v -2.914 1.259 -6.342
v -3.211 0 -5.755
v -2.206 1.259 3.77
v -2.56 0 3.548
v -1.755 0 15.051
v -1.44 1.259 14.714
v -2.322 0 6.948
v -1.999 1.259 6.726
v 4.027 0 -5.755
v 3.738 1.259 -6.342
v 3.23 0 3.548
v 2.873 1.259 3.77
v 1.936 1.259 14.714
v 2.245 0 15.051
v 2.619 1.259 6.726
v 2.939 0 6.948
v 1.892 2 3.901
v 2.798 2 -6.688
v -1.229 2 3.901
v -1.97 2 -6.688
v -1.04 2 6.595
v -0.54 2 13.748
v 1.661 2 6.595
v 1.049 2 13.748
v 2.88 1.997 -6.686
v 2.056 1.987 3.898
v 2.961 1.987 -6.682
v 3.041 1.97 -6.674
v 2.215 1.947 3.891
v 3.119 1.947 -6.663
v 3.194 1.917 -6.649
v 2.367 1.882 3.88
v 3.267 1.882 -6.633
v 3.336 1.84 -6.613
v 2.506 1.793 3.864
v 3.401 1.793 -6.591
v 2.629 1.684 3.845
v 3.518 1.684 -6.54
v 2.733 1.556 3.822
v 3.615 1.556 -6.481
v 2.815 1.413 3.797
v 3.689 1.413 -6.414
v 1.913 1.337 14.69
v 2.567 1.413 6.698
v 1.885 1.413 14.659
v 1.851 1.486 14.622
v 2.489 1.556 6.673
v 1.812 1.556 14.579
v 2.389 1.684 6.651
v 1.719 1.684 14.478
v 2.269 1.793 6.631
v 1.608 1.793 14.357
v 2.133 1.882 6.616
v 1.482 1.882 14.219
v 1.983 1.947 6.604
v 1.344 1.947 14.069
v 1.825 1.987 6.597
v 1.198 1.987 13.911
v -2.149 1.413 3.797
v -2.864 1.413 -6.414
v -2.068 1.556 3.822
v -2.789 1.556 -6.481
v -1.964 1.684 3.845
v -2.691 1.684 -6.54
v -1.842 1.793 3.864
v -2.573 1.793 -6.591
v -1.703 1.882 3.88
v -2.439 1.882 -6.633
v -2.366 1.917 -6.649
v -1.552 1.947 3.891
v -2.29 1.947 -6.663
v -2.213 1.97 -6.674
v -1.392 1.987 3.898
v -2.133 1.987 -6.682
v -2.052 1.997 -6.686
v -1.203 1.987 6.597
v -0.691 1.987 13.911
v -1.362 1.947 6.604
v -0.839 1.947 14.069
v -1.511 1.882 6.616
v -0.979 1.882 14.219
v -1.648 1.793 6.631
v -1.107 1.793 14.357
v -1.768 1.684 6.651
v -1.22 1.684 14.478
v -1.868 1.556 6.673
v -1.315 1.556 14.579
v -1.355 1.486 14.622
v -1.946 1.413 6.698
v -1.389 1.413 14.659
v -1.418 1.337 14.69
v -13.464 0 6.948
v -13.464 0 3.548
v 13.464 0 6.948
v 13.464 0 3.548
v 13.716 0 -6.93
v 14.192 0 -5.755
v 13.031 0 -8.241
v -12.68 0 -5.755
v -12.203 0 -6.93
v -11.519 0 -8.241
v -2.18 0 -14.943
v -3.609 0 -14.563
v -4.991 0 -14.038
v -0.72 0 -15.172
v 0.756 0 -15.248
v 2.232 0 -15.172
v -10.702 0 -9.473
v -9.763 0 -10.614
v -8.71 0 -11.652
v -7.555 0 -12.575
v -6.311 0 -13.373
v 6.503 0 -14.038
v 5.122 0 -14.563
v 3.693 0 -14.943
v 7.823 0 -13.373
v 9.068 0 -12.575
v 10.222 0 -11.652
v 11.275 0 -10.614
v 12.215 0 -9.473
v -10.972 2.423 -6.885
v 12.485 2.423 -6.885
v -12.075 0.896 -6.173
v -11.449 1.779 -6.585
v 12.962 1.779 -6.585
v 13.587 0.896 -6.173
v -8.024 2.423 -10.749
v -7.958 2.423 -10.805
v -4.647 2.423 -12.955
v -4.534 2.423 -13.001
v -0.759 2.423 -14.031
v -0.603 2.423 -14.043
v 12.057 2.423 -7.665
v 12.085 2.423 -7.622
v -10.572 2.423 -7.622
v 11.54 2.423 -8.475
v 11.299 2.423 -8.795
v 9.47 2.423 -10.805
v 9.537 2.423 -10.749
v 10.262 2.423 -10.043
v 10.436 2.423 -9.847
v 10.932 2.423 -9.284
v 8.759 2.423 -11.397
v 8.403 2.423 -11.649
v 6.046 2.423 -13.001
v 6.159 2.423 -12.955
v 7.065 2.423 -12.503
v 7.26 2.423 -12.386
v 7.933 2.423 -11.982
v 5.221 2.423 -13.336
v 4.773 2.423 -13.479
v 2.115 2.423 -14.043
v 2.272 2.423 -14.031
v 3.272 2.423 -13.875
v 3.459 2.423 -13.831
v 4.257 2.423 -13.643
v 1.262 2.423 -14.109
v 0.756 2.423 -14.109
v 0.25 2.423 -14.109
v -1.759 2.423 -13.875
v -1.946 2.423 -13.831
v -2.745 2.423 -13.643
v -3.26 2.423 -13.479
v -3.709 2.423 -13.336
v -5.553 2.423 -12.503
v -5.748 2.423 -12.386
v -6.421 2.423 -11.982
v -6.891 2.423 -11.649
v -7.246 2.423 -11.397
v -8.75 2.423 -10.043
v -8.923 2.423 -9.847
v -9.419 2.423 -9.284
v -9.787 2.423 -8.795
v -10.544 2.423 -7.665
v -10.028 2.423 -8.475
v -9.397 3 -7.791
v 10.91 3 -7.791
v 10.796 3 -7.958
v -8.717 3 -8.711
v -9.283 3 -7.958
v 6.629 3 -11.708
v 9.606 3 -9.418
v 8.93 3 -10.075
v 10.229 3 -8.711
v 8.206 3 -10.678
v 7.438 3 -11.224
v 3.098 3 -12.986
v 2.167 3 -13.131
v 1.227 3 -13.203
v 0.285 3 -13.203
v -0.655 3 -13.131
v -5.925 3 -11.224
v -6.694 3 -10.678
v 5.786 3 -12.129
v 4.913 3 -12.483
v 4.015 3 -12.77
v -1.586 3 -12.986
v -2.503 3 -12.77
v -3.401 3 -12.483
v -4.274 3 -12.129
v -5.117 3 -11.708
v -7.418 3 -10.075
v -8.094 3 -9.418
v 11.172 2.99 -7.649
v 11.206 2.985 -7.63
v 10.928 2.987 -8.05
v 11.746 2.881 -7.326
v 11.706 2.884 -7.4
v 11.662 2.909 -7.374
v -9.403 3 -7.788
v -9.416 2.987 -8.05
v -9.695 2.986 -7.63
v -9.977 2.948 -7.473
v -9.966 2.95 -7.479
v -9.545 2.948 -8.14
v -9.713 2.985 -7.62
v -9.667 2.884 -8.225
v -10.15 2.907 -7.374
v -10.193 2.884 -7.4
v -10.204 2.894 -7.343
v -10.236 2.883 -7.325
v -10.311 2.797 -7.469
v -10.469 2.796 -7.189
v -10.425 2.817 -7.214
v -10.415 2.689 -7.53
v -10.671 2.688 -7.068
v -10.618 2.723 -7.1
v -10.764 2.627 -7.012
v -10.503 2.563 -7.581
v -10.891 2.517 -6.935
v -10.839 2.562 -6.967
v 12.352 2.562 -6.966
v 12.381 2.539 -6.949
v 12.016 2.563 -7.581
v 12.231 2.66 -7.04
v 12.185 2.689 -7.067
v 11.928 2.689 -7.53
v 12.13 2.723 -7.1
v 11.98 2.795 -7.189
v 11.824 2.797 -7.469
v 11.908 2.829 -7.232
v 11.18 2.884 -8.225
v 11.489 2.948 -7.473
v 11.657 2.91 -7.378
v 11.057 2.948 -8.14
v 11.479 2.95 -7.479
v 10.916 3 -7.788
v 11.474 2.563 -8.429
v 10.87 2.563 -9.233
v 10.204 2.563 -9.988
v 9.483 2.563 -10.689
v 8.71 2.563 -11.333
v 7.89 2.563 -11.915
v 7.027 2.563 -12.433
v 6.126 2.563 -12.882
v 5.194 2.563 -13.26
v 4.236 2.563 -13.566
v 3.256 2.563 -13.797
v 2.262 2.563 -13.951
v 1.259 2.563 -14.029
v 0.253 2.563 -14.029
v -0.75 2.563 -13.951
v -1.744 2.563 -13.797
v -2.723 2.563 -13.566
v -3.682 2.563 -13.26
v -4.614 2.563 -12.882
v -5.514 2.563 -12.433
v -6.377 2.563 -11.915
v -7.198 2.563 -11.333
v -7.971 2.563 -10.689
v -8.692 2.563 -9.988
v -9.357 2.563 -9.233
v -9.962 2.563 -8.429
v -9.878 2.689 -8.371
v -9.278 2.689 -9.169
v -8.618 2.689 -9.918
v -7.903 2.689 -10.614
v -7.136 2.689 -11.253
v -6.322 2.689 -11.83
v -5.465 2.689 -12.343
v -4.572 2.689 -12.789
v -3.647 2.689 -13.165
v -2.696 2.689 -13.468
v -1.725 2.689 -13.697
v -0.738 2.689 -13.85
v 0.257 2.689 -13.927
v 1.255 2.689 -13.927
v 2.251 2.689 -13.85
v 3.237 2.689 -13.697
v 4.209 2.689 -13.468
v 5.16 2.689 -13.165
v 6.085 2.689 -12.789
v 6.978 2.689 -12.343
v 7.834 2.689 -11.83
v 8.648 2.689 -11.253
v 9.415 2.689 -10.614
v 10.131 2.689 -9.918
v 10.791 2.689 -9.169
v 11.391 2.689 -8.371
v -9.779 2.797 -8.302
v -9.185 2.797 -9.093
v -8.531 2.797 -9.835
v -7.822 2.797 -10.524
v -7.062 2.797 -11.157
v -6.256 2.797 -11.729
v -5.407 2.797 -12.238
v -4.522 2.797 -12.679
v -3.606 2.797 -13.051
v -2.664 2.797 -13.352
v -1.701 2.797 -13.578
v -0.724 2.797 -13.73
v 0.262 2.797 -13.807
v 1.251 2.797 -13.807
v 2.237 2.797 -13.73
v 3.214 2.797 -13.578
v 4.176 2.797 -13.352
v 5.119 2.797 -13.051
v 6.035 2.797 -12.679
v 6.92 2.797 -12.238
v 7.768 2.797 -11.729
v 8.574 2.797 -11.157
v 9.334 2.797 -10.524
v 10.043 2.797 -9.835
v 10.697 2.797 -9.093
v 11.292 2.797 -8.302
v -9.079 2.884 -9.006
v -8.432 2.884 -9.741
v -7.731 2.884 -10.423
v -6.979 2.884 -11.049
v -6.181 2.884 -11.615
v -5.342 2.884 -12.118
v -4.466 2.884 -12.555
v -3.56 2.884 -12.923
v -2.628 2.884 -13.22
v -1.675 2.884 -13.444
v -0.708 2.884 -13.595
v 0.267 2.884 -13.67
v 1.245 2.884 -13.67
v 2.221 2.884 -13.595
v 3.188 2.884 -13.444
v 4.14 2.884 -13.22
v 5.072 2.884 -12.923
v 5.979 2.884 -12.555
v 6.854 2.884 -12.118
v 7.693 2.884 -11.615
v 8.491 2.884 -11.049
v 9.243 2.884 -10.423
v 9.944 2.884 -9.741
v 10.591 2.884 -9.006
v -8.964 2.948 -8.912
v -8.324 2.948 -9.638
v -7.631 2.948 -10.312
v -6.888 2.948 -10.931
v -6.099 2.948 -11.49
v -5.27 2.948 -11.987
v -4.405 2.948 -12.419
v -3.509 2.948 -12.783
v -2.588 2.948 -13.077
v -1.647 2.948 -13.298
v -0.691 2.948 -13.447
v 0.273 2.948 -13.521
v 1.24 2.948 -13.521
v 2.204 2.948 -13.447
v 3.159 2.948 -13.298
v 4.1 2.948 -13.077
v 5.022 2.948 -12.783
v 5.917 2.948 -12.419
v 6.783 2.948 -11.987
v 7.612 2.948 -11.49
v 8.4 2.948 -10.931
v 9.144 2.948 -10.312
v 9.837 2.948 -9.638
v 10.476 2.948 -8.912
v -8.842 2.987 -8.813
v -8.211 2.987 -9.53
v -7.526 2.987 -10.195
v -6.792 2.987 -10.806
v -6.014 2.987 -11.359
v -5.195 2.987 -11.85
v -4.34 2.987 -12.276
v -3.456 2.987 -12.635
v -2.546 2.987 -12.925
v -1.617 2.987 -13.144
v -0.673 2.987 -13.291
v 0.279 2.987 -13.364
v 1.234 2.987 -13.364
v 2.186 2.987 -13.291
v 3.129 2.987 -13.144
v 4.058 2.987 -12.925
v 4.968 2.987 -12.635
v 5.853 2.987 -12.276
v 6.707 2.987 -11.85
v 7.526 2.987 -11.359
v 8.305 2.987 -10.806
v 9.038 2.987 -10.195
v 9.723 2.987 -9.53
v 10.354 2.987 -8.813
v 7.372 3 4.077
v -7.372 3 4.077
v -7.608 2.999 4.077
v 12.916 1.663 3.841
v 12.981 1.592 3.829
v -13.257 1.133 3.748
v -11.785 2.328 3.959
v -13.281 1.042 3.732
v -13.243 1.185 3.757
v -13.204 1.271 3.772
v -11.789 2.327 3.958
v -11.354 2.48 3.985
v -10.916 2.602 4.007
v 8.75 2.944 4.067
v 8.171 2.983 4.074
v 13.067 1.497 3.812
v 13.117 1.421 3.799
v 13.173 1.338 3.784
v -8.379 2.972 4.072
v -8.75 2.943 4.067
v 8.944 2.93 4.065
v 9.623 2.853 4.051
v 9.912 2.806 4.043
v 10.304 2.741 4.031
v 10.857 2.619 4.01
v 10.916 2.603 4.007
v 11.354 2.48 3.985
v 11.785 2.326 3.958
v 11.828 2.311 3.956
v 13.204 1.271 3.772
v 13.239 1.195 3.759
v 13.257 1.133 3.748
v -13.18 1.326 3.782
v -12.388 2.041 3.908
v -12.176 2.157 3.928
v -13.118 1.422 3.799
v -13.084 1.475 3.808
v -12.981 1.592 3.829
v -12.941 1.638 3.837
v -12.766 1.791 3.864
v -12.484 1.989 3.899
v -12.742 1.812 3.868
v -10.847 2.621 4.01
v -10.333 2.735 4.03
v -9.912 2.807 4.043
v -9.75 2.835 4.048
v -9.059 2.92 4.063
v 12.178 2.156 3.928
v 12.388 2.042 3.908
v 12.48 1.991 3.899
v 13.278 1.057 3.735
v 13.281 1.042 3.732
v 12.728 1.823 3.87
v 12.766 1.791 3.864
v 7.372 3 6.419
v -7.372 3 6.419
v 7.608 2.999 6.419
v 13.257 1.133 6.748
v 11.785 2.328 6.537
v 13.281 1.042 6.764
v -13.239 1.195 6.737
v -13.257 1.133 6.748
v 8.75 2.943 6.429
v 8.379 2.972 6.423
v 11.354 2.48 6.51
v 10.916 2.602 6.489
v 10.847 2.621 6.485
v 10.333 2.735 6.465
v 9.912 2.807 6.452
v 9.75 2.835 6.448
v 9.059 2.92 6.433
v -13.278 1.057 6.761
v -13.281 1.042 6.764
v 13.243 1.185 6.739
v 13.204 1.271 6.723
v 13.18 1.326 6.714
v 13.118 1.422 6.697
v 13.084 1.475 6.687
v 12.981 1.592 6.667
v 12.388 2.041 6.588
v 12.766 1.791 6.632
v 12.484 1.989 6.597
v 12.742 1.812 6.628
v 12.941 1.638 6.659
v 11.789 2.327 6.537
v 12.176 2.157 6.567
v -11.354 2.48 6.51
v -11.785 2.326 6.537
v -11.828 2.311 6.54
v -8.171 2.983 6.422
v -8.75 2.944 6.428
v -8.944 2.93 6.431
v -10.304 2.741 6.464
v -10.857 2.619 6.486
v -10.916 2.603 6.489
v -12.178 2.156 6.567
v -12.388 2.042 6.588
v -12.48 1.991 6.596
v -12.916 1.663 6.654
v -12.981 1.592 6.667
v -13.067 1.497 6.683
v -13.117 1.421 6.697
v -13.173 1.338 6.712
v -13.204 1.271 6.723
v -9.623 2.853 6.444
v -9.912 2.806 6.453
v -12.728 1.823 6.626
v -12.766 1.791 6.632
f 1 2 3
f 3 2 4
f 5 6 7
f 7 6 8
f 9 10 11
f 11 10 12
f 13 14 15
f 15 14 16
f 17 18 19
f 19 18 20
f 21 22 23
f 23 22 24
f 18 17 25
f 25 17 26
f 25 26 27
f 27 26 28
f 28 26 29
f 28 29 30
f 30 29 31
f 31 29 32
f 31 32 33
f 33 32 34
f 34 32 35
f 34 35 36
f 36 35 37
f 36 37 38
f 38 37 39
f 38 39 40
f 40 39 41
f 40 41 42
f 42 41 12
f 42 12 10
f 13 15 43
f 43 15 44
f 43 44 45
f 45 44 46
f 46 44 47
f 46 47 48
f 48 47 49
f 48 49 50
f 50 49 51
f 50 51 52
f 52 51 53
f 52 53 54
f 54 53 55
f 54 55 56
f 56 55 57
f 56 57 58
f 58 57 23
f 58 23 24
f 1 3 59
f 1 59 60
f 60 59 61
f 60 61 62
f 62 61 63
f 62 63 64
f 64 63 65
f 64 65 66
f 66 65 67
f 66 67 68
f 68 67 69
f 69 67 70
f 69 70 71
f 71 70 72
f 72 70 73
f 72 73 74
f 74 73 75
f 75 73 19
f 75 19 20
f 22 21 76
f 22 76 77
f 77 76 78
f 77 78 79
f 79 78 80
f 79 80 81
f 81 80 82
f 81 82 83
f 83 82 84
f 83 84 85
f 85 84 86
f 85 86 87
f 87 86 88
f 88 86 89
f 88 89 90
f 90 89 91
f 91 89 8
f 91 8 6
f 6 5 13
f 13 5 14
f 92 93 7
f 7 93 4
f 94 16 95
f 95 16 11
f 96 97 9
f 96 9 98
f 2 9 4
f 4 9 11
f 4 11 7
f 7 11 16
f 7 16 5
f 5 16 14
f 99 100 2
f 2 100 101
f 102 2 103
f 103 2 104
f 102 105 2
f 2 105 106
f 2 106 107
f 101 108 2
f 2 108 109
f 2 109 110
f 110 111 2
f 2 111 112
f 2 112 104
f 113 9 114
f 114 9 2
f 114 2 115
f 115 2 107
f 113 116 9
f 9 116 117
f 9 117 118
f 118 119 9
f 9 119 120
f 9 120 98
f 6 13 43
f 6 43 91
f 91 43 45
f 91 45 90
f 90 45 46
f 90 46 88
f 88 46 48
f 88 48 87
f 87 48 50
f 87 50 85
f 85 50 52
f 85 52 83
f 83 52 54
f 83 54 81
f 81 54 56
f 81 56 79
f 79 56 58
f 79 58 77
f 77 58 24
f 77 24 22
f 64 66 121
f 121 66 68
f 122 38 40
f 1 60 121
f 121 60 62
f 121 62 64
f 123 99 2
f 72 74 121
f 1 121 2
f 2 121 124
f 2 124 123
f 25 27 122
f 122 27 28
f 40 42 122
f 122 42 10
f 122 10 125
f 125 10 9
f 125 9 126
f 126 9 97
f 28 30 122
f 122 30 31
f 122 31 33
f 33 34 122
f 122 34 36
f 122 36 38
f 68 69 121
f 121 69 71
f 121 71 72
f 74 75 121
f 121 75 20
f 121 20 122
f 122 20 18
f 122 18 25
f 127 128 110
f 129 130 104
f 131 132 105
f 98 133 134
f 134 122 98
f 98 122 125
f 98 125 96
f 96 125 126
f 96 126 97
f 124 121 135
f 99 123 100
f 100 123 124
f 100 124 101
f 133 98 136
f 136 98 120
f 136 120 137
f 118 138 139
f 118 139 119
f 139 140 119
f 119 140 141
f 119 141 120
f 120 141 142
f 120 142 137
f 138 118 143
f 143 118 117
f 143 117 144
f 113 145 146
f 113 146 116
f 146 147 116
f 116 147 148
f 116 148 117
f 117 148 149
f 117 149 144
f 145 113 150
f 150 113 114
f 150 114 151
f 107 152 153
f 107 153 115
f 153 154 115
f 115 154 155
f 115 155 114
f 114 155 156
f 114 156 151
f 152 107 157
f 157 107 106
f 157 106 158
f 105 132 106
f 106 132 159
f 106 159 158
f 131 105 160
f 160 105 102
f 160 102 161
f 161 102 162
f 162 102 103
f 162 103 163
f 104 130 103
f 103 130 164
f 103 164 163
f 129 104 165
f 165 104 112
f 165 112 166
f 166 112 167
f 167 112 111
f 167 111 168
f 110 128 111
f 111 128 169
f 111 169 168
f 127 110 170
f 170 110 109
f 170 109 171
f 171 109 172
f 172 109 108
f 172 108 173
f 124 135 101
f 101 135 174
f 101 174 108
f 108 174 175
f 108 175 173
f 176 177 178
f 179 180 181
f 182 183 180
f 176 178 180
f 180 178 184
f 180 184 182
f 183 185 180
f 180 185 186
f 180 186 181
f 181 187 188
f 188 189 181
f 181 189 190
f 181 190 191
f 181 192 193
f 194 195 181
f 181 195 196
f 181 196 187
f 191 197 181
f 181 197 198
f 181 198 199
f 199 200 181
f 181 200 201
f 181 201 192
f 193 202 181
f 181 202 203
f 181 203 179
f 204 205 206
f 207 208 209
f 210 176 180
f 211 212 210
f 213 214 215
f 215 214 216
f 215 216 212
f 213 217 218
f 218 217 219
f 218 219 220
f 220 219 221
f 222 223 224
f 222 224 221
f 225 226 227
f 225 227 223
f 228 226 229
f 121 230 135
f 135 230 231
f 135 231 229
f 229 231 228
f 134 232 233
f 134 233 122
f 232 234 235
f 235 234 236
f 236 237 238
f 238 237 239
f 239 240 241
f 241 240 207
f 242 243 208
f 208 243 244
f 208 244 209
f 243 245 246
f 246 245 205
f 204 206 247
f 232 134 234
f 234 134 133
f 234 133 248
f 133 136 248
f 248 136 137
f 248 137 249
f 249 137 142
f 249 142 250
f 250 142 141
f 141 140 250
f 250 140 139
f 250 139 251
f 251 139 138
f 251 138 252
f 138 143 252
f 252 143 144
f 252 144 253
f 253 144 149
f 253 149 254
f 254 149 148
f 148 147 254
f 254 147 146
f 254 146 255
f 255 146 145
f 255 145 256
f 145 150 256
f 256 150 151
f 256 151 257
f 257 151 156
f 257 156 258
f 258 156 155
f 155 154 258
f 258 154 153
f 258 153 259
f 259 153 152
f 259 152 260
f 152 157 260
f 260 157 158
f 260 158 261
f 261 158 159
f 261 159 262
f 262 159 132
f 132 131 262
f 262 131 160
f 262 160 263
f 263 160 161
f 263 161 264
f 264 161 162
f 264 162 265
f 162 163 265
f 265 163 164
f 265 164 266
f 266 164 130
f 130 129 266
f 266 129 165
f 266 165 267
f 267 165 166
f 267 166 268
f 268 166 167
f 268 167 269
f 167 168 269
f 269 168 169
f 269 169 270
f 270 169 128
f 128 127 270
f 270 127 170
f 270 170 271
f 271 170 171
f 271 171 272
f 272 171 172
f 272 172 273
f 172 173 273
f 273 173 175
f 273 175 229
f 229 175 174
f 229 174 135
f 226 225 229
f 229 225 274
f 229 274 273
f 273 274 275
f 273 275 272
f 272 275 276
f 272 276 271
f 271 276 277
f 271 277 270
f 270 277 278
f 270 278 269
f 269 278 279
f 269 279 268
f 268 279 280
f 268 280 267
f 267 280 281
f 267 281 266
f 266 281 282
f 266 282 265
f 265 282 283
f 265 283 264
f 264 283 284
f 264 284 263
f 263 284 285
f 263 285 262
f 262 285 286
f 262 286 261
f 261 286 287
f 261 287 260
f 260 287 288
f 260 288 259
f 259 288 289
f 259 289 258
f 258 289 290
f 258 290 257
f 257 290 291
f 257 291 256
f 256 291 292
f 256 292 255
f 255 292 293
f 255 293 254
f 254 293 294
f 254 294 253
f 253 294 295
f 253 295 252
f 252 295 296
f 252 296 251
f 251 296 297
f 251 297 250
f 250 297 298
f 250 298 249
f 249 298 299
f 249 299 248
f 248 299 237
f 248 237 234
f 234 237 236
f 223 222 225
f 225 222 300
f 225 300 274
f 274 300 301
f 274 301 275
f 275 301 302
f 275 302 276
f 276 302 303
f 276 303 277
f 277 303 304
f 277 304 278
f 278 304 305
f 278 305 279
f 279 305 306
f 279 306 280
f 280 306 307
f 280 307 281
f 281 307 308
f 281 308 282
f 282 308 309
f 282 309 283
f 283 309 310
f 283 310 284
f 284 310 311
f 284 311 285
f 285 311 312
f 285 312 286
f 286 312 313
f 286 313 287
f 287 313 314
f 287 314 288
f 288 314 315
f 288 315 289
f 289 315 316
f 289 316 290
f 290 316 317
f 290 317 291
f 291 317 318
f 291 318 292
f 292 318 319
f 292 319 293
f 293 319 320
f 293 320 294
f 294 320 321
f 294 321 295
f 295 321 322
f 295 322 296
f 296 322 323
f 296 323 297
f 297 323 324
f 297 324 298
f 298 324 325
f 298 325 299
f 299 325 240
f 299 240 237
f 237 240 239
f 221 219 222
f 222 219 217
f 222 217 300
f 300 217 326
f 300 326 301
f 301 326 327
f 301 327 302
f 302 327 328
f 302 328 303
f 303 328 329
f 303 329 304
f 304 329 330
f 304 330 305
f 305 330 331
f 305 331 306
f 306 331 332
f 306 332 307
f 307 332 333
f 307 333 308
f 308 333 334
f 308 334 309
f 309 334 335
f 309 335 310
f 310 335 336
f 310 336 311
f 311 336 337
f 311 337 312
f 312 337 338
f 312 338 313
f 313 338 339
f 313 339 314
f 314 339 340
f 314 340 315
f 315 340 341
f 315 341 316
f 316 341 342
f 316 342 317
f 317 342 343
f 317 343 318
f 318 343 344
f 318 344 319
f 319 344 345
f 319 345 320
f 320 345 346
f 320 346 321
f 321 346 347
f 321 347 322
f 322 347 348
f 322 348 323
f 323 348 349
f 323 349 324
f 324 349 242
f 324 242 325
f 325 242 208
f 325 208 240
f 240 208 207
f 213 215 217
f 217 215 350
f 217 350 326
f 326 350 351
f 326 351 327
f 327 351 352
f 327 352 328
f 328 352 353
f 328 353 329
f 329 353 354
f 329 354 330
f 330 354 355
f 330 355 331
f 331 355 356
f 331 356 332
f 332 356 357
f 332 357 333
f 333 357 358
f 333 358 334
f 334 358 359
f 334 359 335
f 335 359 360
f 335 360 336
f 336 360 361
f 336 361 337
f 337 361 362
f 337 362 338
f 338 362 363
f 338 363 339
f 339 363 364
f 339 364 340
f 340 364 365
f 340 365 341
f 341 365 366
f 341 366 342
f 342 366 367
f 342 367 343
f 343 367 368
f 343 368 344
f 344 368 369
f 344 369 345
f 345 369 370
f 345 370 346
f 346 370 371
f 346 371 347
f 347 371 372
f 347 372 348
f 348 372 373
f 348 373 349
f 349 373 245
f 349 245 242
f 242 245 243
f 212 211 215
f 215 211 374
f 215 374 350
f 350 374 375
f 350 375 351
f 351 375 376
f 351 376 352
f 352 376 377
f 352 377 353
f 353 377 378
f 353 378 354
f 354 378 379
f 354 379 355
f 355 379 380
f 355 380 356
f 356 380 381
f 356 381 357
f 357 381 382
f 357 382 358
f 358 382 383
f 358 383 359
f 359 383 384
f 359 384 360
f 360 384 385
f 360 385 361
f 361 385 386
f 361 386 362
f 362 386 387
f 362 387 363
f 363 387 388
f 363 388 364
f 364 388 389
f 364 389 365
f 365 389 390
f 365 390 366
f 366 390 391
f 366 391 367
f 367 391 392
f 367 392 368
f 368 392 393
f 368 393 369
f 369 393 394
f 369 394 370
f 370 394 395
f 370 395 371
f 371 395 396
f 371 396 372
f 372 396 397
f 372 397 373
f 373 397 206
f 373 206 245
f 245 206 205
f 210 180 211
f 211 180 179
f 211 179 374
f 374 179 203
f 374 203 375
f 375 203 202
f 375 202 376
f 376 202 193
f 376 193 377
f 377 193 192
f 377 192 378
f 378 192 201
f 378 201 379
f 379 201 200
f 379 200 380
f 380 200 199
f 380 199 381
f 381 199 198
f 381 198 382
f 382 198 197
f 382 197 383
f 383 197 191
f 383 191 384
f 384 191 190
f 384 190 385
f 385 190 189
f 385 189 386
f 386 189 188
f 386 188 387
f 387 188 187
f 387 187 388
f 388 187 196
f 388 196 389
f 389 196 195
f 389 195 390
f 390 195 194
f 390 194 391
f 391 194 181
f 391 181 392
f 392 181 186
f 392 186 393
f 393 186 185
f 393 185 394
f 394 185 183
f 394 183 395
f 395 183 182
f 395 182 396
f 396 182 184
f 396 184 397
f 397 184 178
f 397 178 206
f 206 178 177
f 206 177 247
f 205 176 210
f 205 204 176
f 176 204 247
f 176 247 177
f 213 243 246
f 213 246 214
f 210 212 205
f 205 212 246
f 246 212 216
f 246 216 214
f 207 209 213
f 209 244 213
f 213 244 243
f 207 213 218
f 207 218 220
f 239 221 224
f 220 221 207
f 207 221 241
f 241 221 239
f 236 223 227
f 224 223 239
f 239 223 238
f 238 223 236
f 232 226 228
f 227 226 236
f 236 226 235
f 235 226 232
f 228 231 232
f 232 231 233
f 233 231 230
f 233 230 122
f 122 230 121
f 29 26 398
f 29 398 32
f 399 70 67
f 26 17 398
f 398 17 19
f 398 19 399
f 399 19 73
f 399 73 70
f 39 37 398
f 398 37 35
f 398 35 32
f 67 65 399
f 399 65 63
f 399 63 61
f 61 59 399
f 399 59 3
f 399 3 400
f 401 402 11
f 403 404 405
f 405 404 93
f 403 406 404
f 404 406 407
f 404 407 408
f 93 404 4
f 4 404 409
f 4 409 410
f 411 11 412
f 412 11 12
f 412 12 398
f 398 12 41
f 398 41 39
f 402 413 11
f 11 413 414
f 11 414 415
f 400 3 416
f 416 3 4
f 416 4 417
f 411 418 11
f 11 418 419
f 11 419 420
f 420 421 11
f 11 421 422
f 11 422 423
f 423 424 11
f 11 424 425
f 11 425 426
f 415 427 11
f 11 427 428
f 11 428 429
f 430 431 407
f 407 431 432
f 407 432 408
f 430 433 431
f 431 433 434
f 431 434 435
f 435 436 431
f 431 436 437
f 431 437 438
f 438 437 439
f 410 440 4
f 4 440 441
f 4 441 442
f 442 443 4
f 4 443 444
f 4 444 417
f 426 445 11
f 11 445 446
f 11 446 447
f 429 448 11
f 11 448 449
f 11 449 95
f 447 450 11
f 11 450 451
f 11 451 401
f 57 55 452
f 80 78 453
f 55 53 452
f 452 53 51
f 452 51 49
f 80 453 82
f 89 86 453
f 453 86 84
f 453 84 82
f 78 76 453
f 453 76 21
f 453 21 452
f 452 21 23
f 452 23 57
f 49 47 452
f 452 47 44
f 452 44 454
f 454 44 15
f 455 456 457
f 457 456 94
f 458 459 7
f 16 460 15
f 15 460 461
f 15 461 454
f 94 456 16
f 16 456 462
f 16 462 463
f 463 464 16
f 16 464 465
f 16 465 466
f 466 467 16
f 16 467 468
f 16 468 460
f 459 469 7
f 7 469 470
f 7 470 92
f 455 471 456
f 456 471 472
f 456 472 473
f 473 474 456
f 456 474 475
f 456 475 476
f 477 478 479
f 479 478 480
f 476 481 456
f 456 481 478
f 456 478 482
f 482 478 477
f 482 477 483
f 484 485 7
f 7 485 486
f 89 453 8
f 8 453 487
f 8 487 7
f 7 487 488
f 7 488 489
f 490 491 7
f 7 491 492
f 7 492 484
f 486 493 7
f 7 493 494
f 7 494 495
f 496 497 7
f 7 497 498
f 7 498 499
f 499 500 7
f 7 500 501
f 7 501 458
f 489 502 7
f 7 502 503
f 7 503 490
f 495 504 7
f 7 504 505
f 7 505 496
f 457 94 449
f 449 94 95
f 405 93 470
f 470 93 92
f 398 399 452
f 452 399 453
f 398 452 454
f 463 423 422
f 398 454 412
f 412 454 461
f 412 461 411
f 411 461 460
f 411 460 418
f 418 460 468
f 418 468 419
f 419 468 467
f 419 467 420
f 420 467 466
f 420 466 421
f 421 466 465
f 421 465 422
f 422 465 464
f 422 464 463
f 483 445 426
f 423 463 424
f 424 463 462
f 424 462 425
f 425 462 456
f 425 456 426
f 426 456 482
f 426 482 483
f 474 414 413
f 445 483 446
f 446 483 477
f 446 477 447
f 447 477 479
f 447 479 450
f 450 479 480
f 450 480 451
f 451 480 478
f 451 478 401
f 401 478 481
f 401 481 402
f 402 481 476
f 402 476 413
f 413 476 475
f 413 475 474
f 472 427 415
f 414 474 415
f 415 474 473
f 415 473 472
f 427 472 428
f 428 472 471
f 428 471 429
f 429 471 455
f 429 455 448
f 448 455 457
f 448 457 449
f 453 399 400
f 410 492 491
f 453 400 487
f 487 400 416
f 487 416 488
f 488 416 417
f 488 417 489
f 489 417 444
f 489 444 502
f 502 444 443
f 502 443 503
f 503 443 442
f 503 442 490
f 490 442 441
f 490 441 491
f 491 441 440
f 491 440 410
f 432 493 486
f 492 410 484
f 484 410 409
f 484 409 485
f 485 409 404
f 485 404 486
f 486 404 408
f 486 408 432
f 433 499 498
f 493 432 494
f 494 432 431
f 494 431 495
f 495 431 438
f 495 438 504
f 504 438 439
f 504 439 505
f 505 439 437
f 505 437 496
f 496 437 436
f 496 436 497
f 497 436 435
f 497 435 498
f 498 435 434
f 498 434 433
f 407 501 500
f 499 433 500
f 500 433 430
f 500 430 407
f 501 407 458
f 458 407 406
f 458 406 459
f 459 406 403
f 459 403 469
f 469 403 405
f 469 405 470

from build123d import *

# Parameters (mm, degrees)
BOSS_EXTRUDE1_DEPTH = 2
BOSS_EXTRUDE1_TAPER = 15
FILLET1_R           = 1
BOSS_EXTRUDE2_DEPTH = 3
BOSS_EXTRUDE2_DRAFT = 25
FILLET2_R           = 1
SKETCH4_W           = 26.928933456
SKETCH4_H           = 3.399397771
BOSS_EXTRUDE3_DEPTH = 3
BOSS_EXTRUDE3_TAPER = 10
FILLET3_START       = 3.548118457
FILLET3_DEPTH       = 3.399397771


with BuildPart() as part:
    # Sketch2 → Boss-Extrude1 (new body)
    with BuildSketch(Plane(origin=(0, 0, 0), x_dir=(1, 0, 0), z_dir=(0, 1, 0))):
        Polygon((2.245194627, -15.051216937), (4.446052988, 10.654239994), (-3.553947012, 10.654239994), (-1.754805373, -15.051216937), align=None)
    extrude(amount=BOSS_EXTRUDE1_DEPTH, taper=BOSS_EXTRUDE1_TAPER)

    # Fillet1
    fillet1_edges = [part.edges().sort_by_distance(p)[0] for p in [
        (2.807764808, 2, 2.198488472),
        (0.441540754, 2, -10.118341609),
        (-2.117166811, 2, 2.198488472),
        (0.249057243, 2, 14.515318552),
    ]]
    fillet(fillet1_edges, radius=FILLET1_R)


with BuildPart() as boss_extrude2_tool:
    # Sketch3 → Boss-Extrude2 (with draft: the straight prism first)
    with BuildSketch(Plane(origin=(0, 0, 0), x_dir=(1, 0, 0), z_dir=(0, 1, 0))):
        with BuildLine():
            Line((-12.679718033, 5.755185759), (14.192118481, 5.755185759))
            ThreePointArc((14.192118481, 5.755185759), (0.756200224, 15.248268586), (-12.679718033, 5.755185759))
        make_face()
    extrude(amount=BOSS_EXTRUDE2_DEPTH)
    # Boss-Extrude2: the draft: its side faces are tilted about the plane it starts from
    boss_extrude2_sides = [boss_extrude2_tool.faces().sort_by_distance(p)[0] for p in [
        (0.756200224, 1.5, -5.755185759),
        (0.756200224, 1.5, -15.248268586),
    ]]
    draft(boss_extrude2_sides, Plane(origin=(0, 0, 0), x_dir=(1, 0, 0), z_dir=(0, 1, 0)), BOSS_EXTRUDE2_DRAFT)


with BuildPart() as part_1:
    add(part.part)

    # Boss-Extrude2: add boss_extrude2_tool
    add(boss_extrude2_tool.part)

    # Fillet2
    fillet2_edges = [part_1.edges().sort_by_distance(p)[0] for p in [
        (0.756200224, 3, -7.154108734),
        (0.756200224, 3, -13.849345612),
    ]]
    fillet(fillet2_edges, radius=FILLET2_R)

    # Sketch4 → Boss-Extrude3 (add)
    with BuildSketch(Plane(origin=(0, 0, 0), x_dir=(1, 0, 0), z_dir=(0, 1, 0))):
        with Locations((0, -5.247817343)):
            Rectangle(SKETCH4_W, SKETCH4_H)
    extrude(amount=BOSS_EXTRUDE3_DEPTH, taper=BOSS_EXTRUDE3_TAPER)

    # Fillet3: read off the stored shape, not the designer's step
    # Fillet3 outline → Fillet3 (cut)
    with BuildSketch(Plane.XY.offset(FILLET3_START)):
        with BuildLine():
            Line((12.935485786, 3), (7.371907057, 3))
            add(Edge.make_bspline(
                [(7.371907057, 3), (12.935485786, 3), (13.280753575, 1.041889066)],
                knots=[0, 0, 0, 1, 1, 1], degree=2, weights=[1, 0.766044443, 1]))
            Line((13.280753575, 1.041889066), (12.935485786, 3))
        make_face()
        with BuildLine():
            add(Edge.make_bspline(
                [(-7.371907057, 3), (-12.935485786, 3), (-13.280753575, 1.041889066)],
                knots=[0, 0, 0, 1, 1, 1], degree=2, weights=[1, 0.766044443, 1]))
            Line((-7.371907057, 3), (-12.935485786, 3))
            Line((-12.935485786, 3), (-13.280753575, 1.041889066))
        make_face()
    extrude(amount=FILLET3_DEPTH, mode=Mode.SUBTRACT)


solid = part_1.part
